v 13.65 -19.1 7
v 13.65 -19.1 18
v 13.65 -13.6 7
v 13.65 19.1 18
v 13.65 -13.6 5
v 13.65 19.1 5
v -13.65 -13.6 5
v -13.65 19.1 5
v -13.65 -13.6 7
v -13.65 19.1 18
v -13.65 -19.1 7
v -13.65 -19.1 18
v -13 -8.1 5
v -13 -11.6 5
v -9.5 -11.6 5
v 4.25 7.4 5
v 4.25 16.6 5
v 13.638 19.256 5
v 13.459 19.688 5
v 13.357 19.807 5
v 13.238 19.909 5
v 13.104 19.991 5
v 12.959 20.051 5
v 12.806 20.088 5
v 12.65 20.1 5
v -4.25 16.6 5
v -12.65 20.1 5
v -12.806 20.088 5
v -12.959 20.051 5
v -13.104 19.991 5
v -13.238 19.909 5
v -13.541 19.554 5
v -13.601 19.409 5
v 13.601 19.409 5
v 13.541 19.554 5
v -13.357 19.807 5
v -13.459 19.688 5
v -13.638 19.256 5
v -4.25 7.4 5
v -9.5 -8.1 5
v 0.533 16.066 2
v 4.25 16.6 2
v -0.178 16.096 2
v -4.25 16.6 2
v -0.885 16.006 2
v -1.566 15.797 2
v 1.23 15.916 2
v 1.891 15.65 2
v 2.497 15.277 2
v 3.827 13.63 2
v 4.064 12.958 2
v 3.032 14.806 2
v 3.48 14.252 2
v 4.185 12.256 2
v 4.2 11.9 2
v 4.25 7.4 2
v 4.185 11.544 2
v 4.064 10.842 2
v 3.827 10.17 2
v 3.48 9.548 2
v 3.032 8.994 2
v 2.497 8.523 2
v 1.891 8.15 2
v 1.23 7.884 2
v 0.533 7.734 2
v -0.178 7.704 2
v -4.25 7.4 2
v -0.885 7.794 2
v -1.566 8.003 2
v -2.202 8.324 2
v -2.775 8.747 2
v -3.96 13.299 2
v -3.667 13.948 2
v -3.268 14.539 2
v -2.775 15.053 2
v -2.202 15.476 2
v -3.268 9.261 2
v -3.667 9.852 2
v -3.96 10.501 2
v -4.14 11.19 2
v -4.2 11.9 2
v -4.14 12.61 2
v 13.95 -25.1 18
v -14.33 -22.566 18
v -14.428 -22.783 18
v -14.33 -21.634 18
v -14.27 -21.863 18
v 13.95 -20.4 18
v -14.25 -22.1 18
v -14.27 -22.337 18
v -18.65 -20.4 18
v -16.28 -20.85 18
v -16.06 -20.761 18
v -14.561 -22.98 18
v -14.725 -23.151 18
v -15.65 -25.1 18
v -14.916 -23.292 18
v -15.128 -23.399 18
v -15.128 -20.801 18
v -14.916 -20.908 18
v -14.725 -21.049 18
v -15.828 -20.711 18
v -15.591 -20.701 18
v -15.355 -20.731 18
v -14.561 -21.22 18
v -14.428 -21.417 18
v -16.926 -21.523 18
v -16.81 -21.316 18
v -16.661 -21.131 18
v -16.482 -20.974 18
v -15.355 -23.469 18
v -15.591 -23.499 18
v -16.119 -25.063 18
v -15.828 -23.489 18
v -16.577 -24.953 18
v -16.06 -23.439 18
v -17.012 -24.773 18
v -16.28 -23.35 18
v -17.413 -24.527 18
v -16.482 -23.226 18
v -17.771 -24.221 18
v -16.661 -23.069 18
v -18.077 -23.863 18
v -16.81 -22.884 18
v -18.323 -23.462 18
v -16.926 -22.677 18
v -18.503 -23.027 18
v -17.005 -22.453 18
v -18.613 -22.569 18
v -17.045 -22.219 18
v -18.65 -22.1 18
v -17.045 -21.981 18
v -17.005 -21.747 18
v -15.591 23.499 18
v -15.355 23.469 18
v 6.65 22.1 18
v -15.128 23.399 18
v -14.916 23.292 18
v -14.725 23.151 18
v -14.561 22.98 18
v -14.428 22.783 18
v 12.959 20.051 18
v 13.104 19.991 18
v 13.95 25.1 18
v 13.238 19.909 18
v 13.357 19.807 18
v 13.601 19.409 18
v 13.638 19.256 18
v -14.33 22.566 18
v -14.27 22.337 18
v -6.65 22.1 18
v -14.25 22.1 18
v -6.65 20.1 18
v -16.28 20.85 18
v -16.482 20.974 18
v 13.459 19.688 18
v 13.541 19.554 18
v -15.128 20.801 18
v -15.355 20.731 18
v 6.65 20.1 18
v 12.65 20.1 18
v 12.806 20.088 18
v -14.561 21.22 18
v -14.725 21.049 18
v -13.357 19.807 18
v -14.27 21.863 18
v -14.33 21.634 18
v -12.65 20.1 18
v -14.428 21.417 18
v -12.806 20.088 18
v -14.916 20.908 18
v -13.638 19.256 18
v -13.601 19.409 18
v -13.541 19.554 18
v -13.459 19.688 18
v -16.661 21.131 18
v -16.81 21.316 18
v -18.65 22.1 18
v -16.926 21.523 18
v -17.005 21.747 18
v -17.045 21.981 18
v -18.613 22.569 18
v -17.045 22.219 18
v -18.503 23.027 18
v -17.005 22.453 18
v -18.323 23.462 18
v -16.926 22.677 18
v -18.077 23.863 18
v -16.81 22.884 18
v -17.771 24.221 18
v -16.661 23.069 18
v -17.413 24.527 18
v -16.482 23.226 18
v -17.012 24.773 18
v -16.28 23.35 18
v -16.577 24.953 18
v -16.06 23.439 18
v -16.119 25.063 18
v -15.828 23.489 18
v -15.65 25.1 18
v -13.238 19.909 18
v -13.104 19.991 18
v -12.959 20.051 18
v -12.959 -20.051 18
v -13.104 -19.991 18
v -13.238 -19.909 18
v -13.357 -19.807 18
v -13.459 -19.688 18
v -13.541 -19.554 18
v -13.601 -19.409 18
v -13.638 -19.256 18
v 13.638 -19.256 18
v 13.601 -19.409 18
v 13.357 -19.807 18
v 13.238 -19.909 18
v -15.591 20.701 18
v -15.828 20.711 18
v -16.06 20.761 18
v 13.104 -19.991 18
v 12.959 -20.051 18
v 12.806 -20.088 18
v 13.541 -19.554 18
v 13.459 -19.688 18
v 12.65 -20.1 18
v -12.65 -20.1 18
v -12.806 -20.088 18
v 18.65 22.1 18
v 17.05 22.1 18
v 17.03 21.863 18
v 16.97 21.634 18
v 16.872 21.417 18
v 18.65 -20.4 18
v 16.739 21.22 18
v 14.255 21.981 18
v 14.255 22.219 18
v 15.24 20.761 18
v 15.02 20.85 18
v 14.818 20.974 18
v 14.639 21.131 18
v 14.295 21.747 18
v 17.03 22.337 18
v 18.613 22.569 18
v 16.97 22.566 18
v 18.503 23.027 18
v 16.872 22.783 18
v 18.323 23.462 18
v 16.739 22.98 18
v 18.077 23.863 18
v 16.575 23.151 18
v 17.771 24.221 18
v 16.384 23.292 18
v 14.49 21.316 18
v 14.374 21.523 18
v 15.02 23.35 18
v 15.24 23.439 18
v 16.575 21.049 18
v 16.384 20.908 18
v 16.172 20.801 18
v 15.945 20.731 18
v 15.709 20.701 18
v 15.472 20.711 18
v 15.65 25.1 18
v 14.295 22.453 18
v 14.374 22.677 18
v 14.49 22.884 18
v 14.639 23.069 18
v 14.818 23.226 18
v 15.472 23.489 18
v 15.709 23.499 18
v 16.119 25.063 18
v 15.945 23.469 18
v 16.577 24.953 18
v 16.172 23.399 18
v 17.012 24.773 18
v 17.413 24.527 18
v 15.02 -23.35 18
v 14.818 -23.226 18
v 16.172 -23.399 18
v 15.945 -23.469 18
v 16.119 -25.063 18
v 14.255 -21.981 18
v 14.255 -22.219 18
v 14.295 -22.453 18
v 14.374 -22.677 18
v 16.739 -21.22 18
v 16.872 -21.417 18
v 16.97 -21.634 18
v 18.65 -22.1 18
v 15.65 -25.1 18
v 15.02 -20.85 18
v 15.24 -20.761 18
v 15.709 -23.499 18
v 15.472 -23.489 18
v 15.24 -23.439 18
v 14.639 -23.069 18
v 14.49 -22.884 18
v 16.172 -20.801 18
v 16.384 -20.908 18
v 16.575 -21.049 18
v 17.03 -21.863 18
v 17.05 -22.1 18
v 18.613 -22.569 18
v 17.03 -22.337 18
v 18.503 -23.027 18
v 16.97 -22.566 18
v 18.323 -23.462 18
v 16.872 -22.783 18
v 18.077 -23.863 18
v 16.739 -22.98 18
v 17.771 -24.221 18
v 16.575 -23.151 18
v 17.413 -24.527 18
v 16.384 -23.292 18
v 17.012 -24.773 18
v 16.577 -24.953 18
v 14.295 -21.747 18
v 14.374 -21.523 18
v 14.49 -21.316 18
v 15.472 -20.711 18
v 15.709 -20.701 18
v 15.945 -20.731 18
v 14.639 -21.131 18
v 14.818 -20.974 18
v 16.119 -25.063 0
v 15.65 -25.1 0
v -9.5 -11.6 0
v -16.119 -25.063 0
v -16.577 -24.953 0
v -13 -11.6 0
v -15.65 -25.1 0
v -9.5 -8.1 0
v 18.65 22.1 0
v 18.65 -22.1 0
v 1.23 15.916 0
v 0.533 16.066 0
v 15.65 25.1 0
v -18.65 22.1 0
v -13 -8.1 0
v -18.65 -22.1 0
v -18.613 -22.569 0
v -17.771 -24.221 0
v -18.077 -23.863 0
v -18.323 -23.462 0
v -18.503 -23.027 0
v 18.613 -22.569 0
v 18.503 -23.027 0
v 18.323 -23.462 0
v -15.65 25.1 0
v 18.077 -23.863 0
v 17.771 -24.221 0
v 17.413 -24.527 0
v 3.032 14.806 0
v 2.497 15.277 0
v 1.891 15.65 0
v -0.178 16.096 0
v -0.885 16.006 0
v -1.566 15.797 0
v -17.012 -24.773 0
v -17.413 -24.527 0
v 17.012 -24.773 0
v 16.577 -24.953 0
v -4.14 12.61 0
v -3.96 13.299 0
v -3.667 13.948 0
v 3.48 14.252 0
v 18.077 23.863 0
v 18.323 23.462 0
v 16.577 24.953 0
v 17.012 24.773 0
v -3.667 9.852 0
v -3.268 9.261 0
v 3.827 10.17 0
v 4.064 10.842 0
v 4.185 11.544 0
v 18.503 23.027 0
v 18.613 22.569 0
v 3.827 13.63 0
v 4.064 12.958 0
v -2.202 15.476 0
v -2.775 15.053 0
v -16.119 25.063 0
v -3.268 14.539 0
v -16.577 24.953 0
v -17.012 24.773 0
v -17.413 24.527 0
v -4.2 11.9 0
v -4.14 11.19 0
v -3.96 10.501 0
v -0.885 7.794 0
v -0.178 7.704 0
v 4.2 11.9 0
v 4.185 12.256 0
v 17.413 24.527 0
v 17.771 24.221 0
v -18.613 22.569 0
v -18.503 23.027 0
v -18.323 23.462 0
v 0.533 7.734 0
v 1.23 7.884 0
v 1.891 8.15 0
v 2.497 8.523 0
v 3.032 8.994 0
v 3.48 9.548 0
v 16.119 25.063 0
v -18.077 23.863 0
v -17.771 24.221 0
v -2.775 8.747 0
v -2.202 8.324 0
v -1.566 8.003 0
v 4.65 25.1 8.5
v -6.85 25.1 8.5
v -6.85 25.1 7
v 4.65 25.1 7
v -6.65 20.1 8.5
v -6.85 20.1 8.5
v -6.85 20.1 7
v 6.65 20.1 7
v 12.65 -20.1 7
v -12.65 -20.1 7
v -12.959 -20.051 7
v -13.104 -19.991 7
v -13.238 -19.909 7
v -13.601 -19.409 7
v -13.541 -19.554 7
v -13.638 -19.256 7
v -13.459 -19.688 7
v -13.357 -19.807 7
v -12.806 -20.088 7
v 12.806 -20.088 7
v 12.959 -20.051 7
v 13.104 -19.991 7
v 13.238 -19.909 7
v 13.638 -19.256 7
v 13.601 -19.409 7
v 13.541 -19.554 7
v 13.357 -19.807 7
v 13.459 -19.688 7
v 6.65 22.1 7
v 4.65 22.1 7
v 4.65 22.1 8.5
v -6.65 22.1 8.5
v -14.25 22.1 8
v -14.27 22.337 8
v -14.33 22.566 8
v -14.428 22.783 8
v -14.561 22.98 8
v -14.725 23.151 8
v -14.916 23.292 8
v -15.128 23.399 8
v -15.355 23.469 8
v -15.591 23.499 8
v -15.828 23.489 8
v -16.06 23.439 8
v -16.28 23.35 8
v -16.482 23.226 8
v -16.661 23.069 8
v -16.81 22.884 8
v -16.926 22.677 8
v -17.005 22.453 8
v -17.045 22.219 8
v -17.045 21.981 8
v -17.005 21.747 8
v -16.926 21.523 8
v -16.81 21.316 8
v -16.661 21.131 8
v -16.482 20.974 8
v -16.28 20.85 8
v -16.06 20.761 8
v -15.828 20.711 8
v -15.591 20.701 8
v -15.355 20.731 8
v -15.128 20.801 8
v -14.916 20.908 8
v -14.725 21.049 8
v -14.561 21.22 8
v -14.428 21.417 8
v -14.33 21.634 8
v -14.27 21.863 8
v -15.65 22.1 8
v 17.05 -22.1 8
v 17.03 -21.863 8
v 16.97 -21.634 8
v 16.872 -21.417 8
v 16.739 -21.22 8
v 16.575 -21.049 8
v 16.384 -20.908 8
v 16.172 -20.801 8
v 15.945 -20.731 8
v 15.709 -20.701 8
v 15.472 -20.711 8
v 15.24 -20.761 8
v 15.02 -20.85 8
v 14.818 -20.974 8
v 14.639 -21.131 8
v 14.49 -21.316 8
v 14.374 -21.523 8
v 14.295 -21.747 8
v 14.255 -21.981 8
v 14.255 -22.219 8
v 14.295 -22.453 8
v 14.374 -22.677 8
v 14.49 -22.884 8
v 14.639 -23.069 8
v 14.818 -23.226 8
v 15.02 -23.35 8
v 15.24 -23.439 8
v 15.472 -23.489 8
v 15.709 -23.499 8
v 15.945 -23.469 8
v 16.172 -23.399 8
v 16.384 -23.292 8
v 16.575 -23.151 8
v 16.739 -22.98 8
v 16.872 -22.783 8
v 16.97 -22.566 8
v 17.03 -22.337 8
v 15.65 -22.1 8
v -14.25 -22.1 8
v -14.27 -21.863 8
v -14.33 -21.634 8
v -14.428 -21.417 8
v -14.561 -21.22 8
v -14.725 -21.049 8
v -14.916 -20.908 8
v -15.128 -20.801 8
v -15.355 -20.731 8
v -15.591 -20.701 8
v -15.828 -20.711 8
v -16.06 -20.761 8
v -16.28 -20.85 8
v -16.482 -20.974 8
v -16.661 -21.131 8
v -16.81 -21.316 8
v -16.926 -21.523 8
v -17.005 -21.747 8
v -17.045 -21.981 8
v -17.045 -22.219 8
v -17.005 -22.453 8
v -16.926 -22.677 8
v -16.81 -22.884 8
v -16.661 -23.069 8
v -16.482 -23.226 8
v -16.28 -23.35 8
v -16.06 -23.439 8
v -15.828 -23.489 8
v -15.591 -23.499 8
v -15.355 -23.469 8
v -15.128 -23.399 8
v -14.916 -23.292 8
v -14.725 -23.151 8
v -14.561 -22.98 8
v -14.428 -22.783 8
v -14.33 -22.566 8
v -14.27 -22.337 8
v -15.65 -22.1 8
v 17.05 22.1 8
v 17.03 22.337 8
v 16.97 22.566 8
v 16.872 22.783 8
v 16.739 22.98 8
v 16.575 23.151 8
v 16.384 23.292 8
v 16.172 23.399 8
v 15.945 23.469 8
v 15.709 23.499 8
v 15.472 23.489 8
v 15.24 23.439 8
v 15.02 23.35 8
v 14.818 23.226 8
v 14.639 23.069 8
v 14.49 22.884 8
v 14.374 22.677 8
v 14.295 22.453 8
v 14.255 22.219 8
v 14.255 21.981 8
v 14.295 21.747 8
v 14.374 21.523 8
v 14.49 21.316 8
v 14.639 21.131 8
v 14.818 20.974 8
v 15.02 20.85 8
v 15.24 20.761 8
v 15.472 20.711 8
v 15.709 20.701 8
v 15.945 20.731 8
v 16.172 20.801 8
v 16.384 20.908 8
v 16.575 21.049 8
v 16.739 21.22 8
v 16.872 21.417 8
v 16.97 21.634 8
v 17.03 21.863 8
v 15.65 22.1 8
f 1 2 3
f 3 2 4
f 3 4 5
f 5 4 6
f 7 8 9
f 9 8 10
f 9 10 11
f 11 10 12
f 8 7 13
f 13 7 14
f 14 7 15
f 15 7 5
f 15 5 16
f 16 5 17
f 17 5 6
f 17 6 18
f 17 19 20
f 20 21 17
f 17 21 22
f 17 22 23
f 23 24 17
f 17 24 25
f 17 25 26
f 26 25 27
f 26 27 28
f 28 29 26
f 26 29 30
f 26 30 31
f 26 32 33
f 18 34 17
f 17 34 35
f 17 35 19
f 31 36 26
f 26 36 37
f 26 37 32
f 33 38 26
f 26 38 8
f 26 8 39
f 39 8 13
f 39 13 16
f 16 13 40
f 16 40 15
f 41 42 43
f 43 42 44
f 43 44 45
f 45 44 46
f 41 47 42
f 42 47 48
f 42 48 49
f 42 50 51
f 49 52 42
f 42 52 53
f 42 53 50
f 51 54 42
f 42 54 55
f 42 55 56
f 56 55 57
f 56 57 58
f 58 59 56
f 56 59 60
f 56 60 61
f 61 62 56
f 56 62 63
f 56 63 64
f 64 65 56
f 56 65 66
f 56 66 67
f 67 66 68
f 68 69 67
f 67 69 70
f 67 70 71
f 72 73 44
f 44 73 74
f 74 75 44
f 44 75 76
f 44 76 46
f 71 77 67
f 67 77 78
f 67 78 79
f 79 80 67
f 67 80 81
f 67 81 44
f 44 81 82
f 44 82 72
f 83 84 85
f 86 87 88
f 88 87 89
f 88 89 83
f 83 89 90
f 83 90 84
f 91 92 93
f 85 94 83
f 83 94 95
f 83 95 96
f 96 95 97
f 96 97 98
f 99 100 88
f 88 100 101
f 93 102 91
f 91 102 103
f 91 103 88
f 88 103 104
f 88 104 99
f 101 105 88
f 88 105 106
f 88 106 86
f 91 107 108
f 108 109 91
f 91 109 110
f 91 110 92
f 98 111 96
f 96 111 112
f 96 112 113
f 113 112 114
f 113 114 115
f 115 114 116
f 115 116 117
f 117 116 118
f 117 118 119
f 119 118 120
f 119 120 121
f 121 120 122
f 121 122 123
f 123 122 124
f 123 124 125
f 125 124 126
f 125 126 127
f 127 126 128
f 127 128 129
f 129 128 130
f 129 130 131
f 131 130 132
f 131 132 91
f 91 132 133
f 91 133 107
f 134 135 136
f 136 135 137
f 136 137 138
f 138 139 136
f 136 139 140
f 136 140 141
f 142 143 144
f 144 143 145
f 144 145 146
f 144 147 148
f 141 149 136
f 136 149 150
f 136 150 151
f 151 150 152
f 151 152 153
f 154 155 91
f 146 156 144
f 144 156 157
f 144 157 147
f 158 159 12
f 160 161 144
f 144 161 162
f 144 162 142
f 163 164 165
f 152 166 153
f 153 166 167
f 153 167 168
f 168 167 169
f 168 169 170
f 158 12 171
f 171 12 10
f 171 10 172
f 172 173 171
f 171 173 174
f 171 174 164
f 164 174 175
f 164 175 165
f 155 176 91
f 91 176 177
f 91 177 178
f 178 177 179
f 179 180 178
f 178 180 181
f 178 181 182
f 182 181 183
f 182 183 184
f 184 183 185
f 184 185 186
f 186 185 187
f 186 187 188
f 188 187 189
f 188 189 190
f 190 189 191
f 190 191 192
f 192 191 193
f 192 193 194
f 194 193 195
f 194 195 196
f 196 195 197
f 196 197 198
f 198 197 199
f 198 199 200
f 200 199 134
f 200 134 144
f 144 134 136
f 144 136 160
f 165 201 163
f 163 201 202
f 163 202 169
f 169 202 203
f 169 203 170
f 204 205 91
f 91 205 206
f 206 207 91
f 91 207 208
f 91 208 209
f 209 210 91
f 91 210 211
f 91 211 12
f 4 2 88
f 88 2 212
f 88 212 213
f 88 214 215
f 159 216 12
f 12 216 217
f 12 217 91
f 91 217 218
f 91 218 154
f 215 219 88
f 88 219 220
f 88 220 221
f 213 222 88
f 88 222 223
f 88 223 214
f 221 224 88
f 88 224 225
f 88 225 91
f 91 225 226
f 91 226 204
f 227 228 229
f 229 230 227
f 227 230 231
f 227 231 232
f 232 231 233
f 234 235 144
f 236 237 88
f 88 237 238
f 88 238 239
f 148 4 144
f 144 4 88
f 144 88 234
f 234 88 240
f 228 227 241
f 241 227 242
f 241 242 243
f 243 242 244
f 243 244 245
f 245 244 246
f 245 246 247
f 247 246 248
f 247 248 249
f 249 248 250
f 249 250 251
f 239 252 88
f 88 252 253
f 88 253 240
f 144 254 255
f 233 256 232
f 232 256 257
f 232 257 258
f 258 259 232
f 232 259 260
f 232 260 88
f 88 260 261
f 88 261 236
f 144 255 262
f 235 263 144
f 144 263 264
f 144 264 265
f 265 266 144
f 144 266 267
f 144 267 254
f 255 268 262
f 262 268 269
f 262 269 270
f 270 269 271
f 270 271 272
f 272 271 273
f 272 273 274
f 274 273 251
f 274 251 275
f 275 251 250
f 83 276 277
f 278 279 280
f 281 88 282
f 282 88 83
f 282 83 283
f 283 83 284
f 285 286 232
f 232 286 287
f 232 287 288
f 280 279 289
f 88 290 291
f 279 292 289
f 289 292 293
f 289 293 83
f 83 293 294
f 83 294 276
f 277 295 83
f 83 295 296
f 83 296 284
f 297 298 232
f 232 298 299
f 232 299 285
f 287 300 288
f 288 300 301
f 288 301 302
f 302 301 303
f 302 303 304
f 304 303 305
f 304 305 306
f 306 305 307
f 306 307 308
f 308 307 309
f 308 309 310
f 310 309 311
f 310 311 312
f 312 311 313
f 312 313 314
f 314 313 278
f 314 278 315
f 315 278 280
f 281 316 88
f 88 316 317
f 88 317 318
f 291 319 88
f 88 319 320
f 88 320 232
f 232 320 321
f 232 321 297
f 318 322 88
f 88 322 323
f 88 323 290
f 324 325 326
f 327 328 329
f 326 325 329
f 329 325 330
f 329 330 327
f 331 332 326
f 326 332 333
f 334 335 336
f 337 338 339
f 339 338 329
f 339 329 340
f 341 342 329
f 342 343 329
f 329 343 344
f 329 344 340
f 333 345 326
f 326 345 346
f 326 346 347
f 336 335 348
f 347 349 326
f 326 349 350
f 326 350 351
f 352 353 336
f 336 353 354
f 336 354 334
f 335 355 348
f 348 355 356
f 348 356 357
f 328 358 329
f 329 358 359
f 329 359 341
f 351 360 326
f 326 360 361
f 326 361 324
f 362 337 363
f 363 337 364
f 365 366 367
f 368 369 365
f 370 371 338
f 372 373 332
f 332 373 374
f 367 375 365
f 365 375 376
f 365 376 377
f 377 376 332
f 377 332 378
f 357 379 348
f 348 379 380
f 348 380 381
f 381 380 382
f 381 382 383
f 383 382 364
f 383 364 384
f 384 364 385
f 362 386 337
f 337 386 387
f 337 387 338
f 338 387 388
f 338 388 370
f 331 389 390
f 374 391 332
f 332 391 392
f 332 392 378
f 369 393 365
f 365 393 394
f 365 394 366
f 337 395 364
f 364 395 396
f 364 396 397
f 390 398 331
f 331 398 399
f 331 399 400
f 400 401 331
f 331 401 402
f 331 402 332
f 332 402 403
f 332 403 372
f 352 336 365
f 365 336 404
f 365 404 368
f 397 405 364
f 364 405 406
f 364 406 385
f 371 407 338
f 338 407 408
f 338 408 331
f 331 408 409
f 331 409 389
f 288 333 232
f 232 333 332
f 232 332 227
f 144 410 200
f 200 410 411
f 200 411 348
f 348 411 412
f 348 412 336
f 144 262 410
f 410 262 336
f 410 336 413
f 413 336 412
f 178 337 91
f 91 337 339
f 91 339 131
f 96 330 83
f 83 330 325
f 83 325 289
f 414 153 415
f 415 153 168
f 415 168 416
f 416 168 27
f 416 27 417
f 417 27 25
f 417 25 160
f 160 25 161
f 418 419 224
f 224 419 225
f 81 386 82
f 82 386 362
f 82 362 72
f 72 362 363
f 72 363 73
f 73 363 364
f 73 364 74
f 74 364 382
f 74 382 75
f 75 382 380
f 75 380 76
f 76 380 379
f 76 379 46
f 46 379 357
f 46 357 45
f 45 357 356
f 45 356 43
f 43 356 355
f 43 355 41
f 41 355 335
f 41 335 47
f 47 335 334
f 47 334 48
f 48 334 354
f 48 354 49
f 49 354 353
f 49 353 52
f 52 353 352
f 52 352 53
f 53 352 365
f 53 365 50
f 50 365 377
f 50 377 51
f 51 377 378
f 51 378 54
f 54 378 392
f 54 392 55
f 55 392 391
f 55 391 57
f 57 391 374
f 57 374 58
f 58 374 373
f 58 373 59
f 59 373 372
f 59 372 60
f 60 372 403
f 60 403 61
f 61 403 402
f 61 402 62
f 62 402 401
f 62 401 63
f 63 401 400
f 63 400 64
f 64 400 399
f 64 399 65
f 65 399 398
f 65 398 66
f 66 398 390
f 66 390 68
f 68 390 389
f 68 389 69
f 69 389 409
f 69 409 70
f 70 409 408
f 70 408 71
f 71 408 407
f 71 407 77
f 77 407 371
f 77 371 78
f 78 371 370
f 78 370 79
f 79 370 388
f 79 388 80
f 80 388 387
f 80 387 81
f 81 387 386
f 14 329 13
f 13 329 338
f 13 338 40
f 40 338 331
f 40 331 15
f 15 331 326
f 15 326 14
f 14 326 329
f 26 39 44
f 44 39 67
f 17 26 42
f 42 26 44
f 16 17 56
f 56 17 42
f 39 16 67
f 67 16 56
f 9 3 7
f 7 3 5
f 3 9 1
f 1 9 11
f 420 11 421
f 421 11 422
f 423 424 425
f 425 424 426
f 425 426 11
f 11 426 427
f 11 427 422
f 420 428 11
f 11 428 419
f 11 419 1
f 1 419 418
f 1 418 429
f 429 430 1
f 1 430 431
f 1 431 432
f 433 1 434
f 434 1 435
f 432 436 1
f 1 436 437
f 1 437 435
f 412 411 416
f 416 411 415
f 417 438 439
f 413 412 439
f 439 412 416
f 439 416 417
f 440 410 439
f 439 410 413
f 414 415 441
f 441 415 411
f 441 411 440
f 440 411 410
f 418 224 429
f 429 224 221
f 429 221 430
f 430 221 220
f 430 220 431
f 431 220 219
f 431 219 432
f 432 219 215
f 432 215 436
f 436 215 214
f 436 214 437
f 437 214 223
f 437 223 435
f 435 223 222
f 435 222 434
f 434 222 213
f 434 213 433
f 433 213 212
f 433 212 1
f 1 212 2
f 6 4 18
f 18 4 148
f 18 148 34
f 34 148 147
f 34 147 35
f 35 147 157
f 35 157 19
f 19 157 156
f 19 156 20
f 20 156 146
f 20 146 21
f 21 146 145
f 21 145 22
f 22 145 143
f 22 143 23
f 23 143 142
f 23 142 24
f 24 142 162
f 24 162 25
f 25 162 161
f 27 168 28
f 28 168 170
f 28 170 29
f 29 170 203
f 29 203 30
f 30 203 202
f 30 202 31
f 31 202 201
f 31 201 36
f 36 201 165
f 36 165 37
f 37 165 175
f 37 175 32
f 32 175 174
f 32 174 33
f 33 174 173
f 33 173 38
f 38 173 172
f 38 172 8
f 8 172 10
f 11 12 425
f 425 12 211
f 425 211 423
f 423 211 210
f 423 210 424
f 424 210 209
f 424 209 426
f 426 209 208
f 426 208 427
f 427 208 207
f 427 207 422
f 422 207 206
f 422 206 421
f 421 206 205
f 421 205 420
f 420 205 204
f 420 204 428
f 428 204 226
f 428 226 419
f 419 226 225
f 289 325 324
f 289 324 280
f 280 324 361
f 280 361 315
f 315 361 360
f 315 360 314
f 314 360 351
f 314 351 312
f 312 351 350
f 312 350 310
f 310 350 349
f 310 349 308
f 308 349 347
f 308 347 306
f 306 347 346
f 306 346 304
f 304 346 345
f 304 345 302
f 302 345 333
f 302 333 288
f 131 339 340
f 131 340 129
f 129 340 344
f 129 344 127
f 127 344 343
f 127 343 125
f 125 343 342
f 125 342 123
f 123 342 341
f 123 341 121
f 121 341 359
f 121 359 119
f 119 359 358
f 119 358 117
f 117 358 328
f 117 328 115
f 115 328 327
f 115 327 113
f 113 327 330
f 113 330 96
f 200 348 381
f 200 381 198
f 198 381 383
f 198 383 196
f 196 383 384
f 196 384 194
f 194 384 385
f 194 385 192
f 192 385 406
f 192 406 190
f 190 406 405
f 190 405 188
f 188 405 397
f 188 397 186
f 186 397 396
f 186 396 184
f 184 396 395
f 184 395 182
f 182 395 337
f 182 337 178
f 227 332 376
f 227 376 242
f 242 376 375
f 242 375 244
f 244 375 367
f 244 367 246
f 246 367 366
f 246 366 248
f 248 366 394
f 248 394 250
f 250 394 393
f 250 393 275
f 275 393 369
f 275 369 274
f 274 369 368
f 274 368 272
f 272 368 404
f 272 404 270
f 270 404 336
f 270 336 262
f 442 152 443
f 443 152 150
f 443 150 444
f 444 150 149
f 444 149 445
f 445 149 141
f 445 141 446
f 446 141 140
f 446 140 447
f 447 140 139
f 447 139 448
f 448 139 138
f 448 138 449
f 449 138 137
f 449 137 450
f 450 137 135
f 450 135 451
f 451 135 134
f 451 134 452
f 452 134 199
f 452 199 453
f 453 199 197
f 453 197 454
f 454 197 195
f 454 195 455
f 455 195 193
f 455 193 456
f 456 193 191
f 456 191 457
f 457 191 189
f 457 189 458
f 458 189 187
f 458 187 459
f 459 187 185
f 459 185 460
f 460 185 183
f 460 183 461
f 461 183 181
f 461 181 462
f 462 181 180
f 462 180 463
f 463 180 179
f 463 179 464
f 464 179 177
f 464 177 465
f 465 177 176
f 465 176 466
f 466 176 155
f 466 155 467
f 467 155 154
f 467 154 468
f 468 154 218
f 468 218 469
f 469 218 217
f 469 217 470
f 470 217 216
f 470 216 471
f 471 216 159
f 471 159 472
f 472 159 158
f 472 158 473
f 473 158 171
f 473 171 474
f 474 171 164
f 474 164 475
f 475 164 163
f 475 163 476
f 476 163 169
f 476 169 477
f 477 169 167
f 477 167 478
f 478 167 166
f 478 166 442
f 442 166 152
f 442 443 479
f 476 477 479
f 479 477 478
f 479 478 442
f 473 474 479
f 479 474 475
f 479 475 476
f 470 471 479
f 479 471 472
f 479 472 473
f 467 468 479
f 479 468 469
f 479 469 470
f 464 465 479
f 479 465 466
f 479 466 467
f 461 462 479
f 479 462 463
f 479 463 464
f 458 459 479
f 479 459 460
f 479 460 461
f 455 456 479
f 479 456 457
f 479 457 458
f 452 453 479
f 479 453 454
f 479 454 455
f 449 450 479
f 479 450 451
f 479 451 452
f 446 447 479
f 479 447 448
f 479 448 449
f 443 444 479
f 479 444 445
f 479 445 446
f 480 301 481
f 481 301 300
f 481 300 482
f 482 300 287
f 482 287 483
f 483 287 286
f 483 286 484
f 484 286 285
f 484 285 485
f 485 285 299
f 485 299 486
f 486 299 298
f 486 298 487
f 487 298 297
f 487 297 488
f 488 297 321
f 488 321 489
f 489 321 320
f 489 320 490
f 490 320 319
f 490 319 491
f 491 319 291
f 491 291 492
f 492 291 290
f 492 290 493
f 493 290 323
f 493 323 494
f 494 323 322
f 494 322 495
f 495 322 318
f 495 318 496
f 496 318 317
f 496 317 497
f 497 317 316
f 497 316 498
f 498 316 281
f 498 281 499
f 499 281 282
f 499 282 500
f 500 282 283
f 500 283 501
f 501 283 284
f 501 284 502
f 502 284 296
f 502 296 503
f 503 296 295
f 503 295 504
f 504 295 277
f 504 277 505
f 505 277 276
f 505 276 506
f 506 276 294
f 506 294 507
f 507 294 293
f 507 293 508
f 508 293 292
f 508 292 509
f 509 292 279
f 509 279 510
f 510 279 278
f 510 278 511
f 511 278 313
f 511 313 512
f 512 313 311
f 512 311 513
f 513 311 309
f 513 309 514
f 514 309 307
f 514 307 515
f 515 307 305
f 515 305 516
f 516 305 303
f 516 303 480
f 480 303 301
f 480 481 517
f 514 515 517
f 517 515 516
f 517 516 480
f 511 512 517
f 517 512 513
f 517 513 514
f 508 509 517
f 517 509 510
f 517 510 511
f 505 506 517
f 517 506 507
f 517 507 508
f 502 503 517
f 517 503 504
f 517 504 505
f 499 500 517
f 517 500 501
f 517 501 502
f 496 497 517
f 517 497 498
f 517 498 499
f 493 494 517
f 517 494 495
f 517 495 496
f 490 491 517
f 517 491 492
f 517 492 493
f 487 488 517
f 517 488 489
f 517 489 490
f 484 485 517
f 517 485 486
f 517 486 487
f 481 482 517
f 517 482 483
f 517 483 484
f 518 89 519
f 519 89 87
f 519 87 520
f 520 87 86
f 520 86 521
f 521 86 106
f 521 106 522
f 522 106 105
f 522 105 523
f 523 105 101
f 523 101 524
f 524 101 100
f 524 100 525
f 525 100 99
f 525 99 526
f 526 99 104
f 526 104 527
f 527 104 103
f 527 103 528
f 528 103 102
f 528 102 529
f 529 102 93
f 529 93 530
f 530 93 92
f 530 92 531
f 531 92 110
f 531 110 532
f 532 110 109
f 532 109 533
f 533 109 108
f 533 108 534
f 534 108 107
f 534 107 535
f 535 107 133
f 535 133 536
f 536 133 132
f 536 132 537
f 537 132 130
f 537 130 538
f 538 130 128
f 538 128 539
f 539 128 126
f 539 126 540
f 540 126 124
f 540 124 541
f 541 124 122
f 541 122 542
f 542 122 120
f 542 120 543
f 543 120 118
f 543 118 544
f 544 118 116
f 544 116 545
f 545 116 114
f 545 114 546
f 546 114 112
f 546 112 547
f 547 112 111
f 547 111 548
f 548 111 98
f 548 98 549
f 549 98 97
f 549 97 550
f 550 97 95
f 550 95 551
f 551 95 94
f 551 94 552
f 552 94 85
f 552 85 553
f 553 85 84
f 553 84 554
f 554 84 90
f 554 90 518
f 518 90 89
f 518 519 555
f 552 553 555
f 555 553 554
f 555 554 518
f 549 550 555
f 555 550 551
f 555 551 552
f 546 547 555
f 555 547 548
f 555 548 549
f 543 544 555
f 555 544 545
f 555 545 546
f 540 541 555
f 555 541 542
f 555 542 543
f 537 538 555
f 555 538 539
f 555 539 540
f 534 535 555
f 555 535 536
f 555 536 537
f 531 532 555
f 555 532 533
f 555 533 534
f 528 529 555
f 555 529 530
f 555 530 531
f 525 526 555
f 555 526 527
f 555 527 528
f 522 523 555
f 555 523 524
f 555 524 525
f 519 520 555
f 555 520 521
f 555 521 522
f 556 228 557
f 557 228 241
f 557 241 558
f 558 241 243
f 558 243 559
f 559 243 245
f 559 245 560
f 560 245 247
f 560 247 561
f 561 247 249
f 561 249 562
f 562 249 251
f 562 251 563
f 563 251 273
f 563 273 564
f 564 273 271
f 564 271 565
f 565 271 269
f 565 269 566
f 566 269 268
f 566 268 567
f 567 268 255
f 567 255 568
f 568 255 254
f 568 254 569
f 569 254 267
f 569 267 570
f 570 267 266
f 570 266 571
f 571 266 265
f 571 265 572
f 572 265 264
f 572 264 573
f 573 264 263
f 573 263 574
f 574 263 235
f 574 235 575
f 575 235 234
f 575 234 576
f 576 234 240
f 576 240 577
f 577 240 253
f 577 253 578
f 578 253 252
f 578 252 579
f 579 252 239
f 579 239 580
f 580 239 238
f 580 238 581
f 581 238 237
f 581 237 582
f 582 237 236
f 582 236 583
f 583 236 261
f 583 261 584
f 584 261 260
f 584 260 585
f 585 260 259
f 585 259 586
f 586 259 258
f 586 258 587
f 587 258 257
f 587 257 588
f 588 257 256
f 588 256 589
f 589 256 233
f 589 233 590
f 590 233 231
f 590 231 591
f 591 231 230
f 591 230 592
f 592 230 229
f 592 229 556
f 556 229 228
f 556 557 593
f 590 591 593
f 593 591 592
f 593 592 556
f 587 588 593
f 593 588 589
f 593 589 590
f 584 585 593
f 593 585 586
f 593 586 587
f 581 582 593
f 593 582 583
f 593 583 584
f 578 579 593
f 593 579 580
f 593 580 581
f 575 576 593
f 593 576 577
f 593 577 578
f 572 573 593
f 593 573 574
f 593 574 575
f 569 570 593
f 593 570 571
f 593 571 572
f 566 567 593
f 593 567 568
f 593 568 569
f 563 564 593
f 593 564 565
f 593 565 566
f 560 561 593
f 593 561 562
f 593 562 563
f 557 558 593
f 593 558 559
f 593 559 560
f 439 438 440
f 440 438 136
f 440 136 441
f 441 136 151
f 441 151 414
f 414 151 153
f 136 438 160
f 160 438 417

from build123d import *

# Parameters (mm, degrees)
SKETCH_1_W          = 37.3
SKETCH_1_H          = 50.2
SKETCH_1_W_2        = 27.3
SKETCH_1_H_2        = 40.2
EXTRUDE_1_DEPTH     = 18
SKETCH_1_2_W        = 27.3
SKETCH_1_2_H        = 40.2
EXTRUDE_2_DEPTH     = 2
SKETCH_2_R          = 4.2
CUT_EXTRUDE_2_DEPTH = 37.080916008
SKETCH_3_W          = 3.5
SKETCH_3_H          = 3.5
CUT_EXTRUDE_3_DEPTH = 36.125951944
SKETCH_4_W          = 8.5
SKETCH_4_H          = 9.2
SKETCH_4_W_2        = 3.5
SKETCH_4_H_2        = 3.5
EXTRUDE_3_DEPTH     = 3
SKETCH_5_W          = 27.3
SKETCH_5_H          = 6.5
EXTRUDE_4_DEPTH     = 2
SKETCH_6_W          = 11.5
SKETCH_6_H          = 1.5
CUT_EXTRUDE_4_DEPTH = 10
FILLET_1_R          = 1
FILLET_2_R          = 3
SKETCH_7_R          = 1.4
CUT_EXTRUDE_5_DEPTH = 10
CUT_EXTRUDE_6_REACH = 38.081
SKETCH_8_W          = 13.3
SKETCH_8_H          = 4


with BuildPart() as part:
    # 스케치1 → 보스-돌출1 (new body)
    with BuildSketch(Plane.XY):
        Rectangle(SKETCH_1_W, SKETCH_1_H)
        Rectangle(SKETCH_1_W_2, SKETCH_1_H_2, mode=Mode.SUBTRACT)
    extrude(amount=EXTRUDE_1_DEPTH)

    # 스케치1<2> → 보스-돌출2 (add)
    with BuildSketch(Plane.XY):
        Rectangle(SKETCH_1_2_W, SKETCH_1_2_H)
    extrude(amount=EXTRUDE_2_DEPTH)

    # 스케치2 → 컷-돌출2 (cut, through all)
    with BuildSketch(Plane.XY):
        with Locations((0, 11.9)):
            Circle(SKETCH_2_R)
    extrude(amount=CUT_EXTRUDE_2_DEPTH, mode=Mode.SUBTRACT)

    # 스케치3 → 컷-돌출3 (cut, through all)
    with BuildSketch(Plane.XY.offset(2)):
        with Locations((-11.25, -9.85)):
            Rectangle(SKETCH_3_W, SKETCH_3_H)
    extrude(amount=-CUT_EXTRUDE_3_DEPTH, mode=Mode.SUBTRACT)

    # 스케치4 → 보스-돌출3 (add)
    with BuildSketch(Plane.XY.offset(2)):
        Polygon((-13.65, -20.1), (13.65, -20.1), (13.65, 20.1), (4.25, 20.1), (-4.25, 20.1), (-13.65, 20.1), align=None)
        with Locations((0, 12)):
            Rectangle(SKETCH_4_W, SKETCH_4_H, mode=Mode.SUBTRACT)
        with Locations((-11.25, -9.85)):
            Rectangle(SKETCH_4_W_2, SKETCH_4_H_2, mode=Mode.SUBTRACT)
    extrude(amount=EXTRUDE_3_DEPTH)

    # 스케치5 → 보스-돌출4 (add)
    with BuildSketch(Plane.XY.offset(5)):
        with Locations((0, -16.85)):
            Rectangle(SKETCH_5_W, SKETCH_5_H)
    extrude(amount=EXTRUDE_4_DEPTH)

    # 스케치6 → 컷-돌출4 (cut)
    with BuildSketch(Plane(origin=(0, 25.1, 0), x_dir=(1, 0, 0), z_dir=(0, 1, 0))):
        with Locations((-1.1, -7.75)):
            Rectangle(SKETCH_6_W, SKETCH_6_H)
    extrude(amount=-CUT_EXTRUDE_4_DEPTH, mode=Mode.SUBTRACT)

    # 필렛1
    fillet_1_edges = [part.edges().sort_by_distance(p)[0] for p in [
        (13.65, -20.1, 12.5),
        (13.65, 20.1, 11.5),
        (-13.65, 20.1, 11.5),
        (-13.65, -20.1, 12.5),
    ]]
    fillet(fillet_1_edges, radius=FILLET_1_R)

    # 필렛2
    fillet_2_edges = [part.edges().sort_by_distance(p)[0] for p in [
        (18.65, -25.1, 9),
        (-18.65, -25.1, 9),
        (-18.65, 25.1, 9),
        (18.65, 25.1, 9),
    ]]
    fillet(fillet_2_edges, radius=FILLET_2_R)

    # 스케치7 → 컷-돌출5 (cut)
    with BuildSketch(Plane.XY.offset(18)):
        with Locations((-15.65, 22.1)):
            Circle(SKETCH_7_R)
        with Locations((15.65, 22.1)):
            Circle(SKETCH_7_R)
        with Locations((-15.65, -22.1)):
            Circle(SKETCH_7_R)
        with Locations((15.65, -22.1)):
            Circle(SKETCH_7_R)
    extrude(amount=-CUT_EXTRUDE_5_DEPTH, mode=Mode.SUBTRACT)

    # 컷-돌출6: up to this face of the body (flat: up to its plane)
    cut_extrude_6_end = Plane(part.part.faces().sort_by_distance((-1.1, 22.6, 7))[0])
    # 스케치8 → 컷-돌출6 (cut, up to the picked face)
    with BuildSketch(Plane.XY.offset(18), mode=Mode.PRIVATE) as cut_extrude_6_sk1:
        with Locations((0, 20.1)):
            Rectangle(SKETCH_8_W, SKETCH_8_H)
    cut_extrude_6_tool1 = split(extrude(cut_extrude_6_sk1.sketch, amount=-CUT_EXTRUDE_6_REACH, mode=Mode.PRIVATE), bisect_by=cut_extrude_6_end, keep=Keep.BOTH, mode=Mode.PRIVATE)
    add(cut_extrude_6_tool1.solids().sort_by(Axis((0, 20.1, 18), (0, 0, -1)))[0], mode=Mode.SUBTRACT)


solid = part.part
